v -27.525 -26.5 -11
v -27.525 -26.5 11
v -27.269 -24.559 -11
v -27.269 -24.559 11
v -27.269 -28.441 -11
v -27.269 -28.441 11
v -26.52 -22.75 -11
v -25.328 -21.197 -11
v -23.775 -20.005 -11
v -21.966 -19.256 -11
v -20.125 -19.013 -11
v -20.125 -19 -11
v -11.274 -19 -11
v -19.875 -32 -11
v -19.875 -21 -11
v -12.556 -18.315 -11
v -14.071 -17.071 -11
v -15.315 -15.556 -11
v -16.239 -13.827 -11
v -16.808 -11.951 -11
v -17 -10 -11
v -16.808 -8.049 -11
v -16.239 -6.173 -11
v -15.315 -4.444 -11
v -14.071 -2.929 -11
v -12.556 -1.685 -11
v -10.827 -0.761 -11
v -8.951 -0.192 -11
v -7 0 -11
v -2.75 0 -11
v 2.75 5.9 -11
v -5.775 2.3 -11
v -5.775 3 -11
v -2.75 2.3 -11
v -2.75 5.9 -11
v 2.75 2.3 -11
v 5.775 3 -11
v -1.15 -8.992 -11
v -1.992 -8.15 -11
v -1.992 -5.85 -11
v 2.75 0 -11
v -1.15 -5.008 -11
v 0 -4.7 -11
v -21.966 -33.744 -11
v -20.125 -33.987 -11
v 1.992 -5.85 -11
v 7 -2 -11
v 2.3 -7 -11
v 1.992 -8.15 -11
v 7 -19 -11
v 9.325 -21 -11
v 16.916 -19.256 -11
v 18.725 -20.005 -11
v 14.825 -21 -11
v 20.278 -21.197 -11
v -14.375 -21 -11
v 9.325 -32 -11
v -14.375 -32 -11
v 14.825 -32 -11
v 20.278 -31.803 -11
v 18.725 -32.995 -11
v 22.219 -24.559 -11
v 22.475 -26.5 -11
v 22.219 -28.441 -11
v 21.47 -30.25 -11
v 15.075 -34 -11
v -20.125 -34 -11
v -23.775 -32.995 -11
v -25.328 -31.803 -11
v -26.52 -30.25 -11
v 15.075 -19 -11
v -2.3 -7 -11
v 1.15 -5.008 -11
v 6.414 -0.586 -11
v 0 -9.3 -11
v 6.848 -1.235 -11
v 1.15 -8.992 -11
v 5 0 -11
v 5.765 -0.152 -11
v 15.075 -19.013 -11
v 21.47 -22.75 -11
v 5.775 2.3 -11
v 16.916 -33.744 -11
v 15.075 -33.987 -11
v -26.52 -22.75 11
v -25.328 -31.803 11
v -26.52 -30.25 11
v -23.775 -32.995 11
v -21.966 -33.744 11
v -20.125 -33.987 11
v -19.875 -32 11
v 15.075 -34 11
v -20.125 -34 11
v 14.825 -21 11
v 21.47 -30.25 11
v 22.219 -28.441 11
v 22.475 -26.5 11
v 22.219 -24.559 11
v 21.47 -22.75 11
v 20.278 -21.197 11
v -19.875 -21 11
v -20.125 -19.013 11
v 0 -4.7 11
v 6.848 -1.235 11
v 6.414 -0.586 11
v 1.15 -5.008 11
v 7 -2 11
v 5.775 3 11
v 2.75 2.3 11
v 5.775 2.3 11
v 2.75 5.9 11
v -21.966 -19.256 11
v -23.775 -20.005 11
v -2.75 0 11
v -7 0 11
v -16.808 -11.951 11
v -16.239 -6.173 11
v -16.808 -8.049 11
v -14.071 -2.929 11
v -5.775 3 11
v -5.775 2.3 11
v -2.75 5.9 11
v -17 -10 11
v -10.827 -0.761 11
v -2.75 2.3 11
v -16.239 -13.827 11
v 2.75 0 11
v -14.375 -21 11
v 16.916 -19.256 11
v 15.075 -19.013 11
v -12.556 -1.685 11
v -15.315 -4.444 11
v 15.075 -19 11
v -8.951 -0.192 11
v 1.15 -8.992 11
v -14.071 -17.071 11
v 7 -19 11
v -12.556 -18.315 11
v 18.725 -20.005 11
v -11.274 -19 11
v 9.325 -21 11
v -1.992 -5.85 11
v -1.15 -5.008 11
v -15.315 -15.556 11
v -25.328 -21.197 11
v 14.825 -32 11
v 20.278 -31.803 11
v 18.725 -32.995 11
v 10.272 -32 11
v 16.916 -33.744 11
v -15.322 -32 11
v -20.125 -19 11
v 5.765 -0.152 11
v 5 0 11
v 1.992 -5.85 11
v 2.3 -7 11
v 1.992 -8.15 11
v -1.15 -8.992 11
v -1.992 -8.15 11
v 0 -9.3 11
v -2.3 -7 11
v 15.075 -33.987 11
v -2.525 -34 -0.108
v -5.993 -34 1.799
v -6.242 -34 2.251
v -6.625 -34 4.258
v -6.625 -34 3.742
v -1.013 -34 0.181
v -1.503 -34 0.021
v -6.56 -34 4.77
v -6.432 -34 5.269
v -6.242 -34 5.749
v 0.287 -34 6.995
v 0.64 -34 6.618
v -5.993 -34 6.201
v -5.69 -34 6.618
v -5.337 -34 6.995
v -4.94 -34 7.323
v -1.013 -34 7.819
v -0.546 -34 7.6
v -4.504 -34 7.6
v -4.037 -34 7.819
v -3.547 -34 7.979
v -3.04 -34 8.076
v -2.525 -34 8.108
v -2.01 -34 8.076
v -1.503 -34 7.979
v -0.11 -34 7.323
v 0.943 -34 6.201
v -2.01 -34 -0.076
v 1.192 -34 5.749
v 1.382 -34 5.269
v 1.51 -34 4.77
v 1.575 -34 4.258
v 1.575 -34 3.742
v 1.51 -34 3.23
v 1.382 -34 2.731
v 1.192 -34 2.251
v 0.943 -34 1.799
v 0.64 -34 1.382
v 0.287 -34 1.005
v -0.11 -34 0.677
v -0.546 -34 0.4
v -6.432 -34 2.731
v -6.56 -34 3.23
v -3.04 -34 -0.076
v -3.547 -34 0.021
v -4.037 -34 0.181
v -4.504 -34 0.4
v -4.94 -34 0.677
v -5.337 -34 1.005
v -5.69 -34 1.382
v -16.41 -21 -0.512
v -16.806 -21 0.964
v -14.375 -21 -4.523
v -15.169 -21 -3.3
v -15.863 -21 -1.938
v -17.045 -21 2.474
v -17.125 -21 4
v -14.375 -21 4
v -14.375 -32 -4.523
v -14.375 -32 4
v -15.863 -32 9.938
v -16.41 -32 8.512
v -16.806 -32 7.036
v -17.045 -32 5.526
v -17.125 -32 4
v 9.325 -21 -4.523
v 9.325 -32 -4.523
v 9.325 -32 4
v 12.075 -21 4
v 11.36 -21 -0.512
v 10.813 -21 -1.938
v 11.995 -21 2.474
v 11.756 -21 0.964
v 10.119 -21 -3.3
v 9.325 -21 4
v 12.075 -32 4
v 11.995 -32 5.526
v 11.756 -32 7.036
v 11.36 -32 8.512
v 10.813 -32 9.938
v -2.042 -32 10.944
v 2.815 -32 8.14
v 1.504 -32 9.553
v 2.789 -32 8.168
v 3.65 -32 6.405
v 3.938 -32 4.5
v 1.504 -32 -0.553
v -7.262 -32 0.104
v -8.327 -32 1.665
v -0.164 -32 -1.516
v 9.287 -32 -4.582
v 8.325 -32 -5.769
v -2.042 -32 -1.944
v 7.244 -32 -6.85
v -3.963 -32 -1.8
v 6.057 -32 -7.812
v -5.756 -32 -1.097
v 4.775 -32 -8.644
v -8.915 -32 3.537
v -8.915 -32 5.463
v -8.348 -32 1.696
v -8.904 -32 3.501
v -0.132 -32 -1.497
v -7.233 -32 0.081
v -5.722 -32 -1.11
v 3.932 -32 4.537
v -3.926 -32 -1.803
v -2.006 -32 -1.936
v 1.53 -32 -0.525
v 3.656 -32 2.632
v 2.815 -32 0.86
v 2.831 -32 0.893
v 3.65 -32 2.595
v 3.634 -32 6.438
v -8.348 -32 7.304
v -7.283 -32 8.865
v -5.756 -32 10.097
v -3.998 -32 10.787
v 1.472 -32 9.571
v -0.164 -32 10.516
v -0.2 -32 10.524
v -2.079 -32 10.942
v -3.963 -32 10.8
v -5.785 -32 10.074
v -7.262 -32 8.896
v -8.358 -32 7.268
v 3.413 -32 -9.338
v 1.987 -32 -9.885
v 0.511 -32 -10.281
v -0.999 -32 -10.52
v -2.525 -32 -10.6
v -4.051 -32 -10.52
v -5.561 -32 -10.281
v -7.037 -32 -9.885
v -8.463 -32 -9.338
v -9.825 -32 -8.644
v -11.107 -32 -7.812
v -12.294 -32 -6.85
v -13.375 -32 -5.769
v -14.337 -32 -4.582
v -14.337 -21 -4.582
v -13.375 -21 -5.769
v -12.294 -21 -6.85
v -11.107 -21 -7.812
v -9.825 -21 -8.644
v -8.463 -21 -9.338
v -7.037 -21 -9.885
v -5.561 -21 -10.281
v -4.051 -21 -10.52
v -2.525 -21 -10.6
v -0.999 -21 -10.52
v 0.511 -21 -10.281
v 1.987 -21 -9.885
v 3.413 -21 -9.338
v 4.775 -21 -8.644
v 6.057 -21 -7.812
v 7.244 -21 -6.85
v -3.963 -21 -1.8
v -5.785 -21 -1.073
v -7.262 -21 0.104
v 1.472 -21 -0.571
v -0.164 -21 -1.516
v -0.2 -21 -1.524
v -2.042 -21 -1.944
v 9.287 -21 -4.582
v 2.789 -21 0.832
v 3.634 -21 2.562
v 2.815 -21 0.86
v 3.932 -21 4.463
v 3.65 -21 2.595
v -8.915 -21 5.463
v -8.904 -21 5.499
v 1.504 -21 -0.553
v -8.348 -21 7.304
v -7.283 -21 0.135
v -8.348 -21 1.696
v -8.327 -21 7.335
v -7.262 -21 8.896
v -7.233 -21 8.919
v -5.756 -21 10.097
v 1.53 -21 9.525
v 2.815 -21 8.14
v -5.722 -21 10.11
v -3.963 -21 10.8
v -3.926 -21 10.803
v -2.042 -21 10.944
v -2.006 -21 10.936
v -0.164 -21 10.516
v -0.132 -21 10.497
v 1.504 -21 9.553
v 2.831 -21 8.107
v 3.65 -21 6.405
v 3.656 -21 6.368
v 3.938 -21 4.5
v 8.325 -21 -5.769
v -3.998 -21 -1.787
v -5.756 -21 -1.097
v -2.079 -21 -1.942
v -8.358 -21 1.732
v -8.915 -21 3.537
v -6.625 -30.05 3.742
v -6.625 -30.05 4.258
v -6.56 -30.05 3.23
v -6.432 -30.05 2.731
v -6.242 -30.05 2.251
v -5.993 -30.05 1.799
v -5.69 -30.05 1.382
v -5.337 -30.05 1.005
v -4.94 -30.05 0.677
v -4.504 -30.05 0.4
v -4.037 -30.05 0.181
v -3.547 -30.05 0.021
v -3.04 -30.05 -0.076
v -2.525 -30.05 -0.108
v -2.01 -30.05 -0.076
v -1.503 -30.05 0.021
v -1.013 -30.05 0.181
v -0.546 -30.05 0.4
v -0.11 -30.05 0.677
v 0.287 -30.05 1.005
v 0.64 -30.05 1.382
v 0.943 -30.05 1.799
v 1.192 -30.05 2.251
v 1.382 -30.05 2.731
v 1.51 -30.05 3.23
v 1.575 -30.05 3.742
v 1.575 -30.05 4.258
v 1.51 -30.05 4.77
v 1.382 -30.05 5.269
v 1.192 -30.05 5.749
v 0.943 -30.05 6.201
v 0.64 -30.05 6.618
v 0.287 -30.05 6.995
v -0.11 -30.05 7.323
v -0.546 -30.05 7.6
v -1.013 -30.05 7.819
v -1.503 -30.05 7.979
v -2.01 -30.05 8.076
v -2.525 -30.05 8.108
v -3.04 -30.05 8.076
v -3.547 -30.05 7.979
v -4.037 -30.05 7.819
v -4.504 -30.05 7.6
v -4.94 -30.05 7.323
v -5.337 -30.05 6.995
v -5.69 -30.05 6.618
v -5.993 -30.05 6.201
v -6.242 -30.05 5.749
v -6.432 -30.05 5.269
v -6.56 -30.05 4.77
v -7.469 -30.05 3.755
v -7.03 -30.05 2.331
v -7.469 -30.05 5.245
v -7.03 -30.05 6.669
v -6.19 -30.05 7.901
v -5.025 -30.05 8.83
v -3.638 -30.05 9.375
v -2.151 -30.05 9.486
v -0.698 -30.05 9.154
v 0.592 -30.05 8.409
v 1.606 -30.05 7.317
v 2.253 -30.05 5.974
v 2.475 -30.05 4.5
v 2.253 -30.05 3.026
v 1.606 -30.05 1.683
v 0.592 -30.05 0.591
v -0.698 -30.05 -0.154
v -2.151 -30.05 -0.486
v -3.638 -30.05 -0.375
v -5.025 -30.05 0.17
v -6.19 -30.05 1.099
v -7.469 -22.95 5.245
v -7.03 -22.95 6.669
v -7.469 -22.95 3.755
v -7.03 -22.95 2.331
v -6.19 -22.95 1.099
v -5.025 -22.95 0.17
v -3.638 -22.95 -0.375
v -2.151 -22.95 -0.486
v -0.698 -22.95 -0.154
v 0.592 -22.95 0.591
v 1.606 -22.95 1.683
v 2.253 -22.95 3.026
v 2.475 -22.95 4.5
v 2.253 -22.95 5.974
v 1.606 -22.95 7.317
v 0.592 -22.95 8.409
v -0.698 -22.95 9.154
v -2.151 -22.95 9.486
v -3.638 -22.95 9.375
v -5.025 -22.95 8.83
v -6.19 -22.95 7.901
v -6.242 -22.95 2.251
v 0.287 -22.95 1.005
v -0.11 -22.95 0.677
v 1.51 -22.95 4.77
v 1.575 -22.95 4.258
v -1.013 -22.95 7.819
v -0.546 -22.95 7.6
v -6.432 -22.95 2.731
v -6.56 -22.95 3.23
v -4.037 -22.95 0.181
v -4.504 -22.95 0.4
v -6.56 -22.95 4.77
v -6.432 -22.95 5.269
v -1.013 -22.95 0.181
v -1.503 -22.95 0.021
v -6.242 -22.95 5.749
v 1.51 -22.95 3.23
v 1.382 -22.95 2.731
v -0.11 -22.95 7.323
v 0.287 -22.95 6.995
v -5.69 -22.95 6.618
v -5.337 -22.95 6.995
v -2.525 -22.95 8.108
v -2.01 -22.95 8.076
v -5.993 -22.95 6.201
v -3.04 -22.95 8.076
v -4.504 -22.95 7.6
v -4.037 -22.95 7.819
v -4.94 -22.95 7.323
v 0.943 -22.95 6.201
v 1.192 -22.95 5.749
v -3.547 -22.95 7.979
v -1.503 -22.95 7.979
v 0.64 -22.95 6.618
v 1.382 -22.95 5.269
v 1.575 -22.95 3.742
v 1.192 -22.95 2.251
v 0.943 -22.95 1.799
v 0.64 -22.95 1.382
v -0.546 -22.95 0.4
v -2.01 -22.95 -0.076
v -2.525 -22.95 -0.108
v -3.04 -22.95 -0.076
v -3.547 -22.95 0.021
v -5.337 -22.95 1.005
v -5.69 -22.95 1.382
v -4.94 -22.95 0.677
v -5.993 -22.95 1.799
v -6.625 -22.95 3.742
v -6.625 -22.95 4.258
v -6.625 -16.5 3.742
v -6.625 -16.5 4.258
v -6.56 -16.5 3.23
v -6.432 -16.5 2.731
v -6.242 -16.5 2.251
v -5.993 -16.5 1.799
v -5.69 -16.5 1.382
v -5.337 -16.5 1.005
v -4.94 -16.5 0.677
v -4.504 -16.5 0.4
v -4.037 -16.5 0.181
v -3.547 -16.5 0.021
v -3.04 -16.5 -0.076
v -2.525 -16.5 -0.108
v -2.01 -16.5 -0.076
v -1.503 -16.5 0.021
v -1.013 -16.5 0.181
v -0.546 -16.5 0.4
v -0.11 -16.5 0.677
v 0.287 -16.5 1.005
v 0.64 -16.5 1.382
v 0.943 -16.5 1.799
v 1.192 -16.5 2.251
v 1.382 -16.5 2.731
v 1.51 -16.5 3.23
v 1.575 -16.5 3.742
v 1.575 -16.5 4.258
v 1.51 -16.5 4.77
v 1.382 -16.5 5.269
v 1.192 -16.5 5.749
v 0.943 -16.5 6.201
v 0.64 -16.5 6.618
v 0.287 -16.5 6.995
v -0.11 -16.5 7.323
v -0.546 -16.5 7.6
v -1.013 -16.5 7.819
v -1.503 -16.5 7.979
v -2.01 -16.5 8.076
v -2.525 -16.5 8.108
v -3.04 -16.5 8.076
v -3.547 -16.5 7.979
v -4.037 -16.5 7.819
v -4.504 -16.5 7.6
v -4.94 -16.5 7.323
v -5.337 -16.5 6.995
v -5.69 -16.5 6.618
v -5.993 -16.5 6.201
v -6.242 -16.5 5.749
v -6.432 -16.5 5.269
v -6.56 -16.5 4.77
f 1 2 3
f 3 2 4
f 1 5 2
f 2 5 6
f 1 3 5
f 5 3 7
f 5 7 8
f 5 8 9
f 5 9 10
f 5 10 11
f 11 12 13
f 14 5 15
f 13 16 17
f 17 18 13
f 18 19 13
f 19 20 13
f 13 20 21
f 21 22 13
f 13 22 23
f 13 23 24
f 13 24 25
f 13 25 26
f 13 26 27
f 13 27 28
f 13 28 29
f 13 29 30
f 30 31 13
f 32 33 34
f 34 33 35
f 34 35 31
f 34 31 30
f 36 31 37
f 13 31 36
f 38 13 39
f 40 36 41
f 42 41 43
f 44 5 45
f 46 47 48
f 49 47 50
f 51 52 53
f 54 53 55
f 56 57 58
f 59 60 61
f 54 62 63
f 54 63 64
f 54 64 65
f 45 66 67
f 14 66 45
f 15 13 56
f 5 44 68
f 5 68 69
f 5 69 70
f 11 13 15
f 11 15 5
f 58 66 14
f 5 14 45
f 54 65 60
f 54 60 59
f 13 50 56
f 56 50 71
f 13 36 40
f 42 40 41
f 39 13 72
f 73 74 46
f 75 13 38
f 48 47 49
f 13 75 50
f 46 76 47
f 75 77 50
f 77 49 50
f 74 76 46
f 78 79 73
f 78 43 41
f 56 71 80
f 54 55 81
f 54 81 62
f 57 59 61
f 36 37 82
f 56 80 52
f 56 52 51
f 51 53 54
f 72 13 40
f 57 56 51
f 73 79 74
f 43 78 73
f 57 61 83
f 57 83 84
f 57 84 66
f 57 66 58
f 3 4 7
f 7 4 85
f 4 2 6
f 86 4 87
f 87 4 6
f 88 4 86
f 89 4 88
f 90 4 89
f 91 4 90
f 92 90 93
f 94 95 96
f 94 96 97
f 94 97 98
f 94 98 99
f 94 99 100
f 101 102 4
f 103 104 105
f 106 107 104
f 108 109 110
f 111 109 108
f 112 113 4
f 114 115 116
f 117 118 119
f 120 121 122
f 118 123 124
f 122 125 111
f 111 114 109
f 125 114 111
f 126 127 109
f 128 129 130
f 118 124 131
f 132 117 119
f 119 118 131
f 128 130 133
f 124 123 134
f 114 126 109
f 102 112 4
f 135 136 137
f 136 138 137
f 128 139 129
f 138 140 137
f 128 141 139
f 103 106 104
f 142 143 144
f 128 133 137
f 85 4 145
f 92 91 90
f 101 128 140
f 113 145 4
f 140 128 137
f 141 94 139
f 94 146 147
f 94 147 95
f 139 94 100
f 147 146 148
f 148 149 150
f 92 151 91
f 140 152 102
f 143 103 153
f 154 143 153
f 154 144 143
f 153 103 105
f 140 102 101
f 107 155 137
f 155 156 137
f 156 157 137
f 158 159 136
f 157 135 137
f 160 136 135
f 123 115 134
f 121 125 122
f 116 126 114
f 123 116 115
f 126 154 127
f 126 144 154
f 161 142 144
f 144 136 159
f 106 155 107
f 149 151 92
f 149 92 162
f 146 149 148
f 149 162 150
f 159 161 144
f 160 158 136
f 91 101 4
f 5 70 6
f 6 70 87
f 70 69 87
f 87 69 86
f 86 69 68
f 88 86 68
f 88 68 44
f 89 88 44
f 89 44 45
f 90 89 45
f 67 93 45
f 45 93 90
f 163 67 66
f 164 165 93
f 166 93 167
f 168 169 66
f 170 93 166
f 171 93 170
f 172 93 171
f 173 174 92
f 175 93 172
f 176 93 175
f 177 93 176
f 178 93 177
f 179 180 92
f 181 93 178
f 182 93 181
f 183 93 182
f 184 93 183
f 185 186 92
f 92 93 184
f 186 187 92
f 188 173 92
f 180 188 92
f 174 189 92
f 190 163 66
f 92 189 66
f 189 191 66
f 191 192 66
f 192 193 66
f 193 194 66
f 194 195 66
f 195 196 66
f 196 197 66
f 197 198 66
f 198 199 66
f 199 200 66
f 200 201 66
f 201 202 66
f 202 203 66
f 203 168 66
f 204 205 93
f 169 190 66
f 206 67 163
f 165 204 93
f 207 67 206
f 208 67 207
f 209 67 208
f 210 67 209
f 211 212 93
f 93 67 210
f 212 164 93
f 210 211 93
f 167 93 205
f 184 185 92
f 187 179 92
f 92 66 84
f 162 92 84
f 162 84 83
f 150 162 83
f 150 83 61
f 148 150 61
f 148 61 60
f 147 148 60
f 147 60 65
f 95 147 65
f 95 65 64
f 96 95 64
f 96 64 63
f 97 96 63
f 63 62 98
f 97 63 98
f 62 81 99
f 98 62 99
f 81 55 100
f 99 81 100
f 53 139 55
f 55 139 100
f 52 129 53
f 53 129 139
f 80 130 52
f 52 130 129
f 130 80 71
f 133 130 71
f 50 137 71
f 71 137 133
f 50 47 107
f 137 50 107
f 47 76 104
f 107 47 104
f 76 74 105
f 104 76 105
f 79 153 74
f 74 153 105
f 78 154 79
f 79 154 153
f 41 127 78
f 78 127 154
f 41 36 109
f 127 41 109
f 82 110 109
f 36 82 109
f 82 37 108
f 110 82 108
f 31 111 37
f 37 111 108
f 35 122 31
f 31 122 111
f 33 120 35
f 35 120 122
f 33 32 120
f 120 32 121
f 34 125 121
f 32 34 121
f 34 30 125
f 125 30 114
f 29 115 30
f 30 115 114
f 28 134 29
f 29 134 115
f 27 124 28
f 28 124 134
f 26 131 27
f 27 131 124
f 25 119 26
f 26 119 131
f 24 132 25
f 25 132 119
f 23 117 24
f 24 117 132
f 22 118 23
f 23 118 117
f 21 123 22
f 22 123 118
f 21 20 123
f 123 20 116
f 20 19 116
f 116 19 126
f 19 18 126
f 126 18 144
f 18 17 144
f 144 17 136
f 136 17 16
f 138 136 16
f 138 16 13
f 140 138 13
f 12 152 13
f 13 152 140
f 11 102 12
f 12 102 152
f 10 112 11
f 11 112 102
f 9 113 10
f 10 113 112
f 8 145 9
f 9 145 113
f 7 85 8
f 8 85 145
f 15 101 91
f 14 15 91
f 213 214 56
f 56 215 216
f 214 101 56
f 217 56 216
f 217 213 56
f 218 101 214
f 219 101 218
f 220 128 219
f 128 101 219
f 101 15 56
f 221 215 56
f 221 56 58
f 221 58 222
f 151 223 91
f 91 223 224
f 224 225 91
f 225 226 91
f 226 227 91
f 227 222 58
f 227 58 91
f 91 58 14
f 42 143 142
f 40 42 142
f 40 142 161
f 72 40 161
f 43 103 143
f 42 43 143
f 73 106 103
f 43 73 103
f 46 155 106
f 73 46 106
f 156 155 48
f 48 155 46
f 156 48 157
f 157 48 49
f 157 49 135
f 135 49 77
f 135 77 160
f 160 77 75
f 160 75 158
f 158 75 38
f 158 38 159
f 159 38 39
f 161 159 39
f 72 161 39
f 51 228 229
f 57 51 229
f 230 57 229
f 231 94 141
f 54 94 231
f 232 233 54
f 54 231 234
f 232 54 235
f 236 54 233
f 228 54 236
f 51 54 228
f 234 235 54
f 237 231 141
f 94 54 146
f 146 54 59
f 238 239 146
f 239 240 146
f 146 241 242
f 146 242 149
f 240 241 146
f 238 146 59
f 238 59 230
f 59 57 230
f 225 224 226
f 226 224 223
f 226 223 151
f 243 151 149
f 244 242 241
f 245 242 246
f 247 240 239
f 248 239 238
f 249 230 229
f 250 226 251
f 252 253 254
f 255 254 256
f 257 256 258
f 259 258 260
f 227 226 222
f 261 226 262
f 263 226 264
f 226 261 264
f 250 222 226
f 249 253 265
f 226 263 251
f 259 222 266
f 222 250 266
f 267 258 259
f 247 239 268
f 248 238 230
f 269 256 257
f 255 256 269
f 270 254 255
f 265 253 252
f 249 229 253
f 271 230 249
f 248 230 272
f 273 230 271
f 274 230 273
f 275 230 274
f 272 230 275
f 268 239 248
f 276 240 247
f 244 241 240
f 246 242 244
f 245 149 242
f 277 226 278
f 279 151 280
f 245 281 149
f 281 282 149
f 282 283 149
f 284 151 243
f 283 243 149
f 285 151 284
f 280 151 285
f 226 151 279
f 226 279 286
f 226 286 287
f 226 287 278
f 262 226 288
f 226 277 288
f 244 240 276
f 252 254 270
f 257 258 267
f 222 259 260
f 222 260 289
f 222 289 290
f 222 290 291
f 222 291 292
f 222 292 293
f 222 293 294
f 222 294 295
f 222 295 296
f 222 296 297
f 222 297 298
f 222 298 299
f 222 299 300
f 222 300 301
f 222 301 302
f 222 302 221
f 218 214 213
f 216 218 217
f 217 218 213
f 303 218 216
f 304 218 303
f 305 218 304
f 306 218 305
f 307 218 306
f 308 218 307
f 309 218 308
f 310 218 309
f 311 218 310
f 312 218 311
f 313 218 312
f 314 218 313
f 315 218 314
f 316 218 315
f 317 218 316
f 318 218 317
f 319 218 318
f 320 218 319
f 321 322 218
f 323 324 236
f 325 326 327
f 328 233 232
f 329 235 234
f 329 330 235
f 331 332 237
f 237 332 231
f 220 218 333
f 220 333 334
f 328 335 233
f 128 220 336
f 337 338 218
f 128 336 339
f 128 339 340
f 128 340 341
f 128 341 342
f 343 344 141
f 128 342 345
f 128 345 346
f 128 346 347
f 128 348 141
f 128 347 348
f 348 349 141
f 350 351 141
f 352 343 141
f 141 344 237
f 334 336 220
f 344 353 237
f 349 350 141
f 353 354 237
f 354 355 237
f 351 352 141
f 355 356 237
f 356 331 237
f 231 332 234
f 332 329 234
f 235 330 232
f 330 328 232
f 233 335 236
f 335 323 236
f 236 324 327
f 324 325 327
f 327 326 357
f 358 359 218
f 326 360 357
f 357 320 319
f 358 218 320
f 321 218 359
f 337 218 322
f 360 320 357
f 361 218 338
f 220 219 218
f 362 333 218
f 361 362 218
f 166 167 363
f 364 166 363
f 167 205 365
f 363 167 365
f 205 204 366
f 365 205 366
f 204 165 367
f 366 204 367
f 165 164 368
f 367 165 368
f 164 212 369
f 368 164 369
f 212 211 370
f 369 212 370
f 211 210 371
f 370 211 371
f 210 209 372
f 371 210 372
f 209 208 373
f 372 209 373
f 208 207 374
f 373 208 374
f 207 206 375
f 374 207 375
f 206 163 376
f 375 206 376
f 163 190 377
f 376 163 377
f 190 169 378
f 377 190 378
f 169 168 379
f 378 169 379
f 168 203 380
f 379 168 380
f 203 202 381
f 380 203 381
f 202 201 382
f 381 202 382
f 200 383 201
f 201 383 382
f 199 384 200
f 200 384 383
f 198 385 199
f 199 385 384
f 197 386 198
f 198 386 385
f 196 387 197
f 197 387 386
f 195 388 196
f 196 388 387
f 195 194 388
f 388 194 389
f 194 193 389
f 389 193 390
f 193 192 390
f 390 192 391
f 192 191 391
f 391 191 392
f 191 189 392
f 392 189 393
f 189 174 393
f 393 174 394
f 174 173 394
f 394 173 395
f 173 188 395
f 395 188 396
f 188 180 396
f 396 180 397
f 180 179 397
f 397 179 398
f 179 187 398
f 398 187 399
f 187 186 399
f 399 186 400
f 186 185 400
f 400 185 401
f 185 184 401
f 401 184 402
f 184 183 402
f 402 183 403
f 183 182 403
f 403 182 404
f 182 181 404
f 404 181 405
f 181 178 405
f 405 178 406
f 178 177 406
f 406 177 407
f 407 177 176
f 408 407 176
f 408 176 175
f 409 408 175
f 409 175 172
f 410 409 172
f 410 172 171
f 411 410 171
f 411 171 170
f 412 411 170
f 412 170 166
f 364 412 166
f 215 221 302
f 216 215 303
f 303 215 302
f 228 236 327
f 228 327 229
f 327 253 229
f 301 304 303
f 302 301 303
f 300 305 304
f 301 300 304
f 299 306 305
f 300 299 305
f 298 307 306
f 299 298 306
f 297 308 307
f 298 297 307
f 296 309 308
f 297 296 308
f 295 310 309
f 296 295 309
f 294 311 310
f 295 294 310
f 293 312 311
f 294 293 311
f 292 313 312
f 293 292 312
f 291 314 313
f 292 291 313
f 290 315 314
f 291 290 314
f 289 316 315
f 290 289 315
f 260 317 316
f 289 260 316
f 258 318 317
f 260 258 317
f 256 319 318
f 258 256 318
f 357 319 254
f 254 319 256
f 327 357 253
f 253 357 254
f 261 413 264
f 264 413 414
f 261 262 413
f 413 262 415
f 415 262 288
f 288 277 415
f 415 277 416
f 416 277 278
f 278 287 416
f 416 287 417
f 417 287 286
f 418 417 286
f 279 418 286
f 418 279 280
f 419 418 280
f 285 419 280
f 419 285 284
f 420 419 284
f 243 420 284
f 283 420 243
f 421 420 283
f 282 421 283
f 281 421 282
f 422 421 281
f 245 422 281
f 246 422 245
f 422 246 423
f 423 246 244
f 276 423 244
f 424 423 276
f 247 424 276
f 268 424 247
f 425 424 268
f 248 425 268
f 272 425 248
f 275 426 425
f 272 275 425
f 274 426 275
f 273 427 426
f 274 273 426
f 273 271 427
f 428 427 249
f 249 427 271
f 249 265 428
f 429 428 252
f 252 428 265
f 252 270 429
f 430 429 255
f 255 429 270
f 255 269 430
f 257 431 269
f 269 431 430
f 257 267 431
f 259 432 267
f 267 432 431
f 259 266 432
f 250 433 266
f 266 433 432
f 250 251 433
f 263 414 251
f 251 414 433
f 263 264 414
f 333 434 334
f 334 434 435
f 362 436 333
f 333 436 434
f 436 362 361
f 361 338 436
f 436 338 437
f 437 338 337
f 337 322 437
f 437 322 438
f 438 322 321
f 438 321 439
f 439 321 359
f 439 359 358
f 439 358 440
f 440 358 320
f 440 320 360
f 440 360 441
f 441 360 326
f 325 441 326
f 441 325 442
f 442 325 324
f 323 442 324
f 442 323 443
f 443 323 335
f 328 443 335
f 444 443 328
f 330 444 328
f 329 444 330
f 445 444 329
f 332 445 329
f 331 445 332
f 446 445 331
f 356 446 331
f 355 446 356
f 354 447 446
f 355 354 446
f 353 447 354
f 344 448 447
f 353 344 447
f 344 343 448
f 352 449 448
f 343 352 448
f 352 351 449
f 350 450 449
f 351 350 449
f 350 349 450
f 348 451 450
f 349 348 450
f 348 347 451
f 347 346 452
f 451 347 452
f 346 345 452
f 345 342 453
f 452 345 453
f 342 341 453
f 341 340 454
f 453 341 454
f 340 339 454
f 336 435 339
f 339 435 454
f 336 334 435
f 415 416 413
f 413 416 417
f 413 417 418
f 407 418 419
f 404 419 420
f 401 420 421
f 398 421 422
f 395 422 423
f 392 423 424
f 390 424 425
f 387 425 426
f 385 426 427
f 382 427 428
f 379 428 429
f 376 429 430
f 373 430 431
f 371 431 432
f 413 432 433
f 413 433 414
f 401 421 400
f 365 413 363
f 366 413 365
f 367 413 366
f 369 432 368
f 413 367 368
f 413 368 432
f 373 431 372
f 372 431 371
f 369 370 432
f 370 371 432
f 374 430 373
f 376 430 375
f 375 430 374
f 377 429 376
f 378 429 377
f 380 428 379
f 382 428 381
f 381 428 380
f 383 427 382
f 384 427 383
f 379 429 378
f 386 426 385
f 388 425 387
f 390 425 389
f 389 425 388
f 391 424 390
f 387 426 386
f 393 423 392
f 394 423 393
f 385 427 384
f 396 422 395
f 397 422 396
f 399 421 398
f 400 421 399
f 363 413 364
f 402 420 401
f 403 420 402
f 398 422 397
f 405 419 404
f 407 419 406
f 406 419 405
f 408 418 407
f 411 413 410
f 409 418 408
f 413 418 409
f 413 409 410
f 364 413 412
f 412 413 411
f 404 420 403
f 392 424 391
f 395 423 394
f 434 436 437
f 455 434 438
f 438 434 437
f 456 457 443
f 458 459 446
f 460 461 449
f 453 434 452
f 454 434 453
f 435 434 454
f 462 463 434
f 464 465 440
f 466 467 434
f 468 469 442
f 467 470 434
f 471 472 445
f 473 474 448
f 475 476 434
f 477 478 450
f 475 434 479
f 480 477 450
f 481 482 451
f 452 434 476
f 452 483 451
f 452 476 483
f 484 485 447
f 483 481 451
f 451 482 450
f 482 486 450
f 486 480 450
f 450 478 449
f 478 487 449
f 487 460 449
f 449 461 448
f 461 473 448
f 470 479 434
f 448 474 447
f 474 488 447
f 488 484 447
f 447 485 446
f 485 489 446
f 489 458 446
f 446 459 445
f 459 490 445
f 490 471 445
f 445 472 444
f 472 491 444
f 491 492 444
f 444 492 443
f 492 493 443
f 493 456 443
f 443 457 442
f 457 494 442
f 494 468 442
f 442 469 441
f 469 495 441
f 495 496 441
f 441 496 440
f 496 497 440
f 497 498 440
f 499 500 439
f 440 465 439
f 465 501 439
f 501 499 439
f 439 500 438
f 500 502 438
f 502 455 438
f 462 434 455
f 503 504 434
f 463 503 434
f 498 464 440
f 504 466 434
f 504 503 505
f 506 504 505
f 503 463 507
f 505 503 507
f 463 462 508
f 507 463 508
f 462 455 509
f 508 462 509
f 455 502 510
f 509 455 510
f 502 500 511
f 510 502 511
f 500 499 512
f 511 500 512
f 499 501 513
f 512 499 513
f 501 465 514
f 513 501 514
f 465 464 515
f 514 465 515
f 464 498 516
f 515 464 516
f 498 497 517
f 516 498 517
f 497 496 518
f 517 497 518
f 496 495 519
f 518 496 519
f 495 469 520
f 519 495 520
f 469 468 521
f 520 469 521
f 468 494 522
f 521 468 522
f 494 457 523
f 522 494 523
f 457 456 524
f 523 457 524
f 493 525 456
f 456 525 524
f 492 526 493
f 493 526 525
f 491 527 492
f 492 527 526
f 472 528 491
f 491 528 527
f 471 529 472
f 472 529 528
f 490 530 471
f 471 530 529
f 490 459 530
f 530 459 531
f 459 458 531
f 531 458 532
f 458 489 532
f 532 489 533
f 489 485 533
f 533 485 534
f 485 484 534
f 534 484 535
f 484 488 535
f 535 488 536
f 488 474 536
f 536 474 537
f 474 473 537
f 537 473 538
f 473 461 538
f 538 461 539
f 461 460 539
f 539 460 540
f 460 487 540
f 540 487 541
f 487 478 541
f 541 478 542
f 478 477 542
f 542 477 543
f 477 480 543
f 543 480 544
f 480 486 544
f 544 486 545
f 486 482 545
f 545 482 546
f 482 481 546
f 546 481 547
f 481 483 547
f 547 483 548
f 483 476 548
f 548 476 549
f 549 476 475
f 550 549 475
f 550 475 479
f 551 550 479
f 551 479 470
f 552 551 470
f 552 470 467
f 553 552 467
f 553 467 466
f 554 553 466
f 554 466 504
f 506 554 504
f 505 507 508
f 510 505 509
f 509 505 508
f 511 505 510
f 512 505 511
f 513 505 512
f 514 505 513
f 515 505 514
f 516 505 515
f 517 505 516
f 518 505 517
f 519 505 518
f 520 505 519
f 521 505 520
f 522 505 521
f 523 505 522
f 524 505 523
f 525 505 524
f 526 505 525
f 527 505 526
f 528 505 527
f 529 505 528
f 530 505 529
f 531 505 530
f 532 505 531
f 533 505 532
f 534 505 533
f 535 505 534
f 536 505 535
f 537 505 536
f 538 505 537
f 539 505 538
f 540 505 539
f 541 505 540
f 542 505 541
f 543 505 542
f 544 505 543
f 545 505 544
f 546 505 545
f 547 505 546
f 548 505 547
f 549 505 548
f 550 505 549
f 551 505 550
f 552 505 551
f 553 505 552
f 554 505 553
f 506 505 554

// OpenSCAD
// file: misumi-parts-library.scad
module hfs2040(l) {
	// hfs5_2040
	color("silver") {
		rotate([-90,0,0]) translate([0,0,l]) scale([1,1,l/500]) import("misumi/hfs5_2040_500.stl");
	}
}

module hfs60() {
	translate([0,0,100]) import("misumi/hfs60a5_20_100.stl");
}

module hblss5() {
	import("misumi/hblss5.stl");
}
module hblfsnf5() {
	import("misumi/hblfsnf5.stl");
}
module hblfsn5() {
	import("misumi/hblfsn5.stl");
}
module hblsd5() {
	color("blue") import("misumi/hblsd5.stl");
}

module hblfsd5() {
	color("blue") import("misumi/hblfsd5.stl");
}

module hblts5() {
	color("blue") import("misumi/hblts5.stl");
}

module hblfssw5() {
	color("blue") import("misumi/hblfssw5.stl");
}

module flatbracket2x2() {
	// HPTSd5
	difference() {
		color("blue") cube([36, 36, 2.3], center=true);
		#translate([10, 10, -2]) cylinder(r= 5.5/2, h= 4);
		#translate([-10, 10, -2]) cylinder(r= 5.5/2, h= 4);
		#translate([10, -10, -2]) cylinder(r= 5.5/2, h= 4);
		#translate([-10, -10, -2]) cylinder(r= 5.5/2, h= 4);
	}
}

module tbracket() {
	// HPTTD5
	translate([-110/2, 0,0]) difference() {
		 union() {
			color("blue"){ 
				cube([110, 38, 2.3]);
				translate([110/2-38/2,-38,0]) cube([38, 80-38, 2.3]);
			}
		}
		#translate([9, 9, 0]) cylinder(r= 5.5/2, h= 4);
		#translate([9, 9+20, 0]) cylinder(r= 5.5/2, h= 4);
		#translate([110-9, 9, 0]) cylinder(r= 5.5/2, h= 4);
		#translate([110-9, 9+20, 0]) cylinder(r= 5.5/2, h= 4);
		translate([110/2-38/2,-38,0]) {
			#translate([9, 9, 0]) cylinder(r= 5.5/2, h= 4);
			#translate([9, 9+20, 0]) cylinder(r= 5.5/2, h= 4);
			#translate([38-9, 9, 0]) cylinder(r= 5.5/2, h= 4);
			#translate([38-9, 9+20, 0]) cylinder(r= 5.5/2, h= 4);
		}
	}
}

module tbracket1() {
	// HPTTS5
	//thick= 2.3; // real
	thick= 4; // printable
	translate([-100/2, 0,0]) difference() {
		 union() {
			color("blue"){ 
				cube([100, 18, thick]);
				translate([100/2-18/2,18,0]) cube([18, 90-18, thick]);
			}
		}
		#translate([10, 9, -2]) cylinder(r= 5.5/2, h= thick+4);
		#translate([100-10, 9, -2]) cylinder(r= 5.5/2, h= thick+4);
		#translate([50, 9, -2]) cylinder(r= 5.5/2, h= thick+4);
		translate([100/2-18/2,18,0]) {
			#translate([9, 90-18-10, -2]) cylinder(r= 5.5/2, h= thick+4);
			#translate([9, 90-18-10-30, -2]) cylinder(r= 5.5/2, h= thick+4);
		}
	}
}
// file: myLibs.scad
pi= 3.14159265359;

module hole(diam, height, clearance= 0.1)
{
        fn= round(diam * pi / 0.5);
        cylinder(h= height, r=diam / 2 / cos(180 / fn) + clearance, $fn=fn);
}

module nutTrap(ffd, faces=6, height=1)
{
	cylinder(h= height, r=ffd / cos(180 / faces) / 2 + 0.05, $fn=faces);
}

// A slot which has rounded ends, but total length is l
module slot(d= 4, l= 8, ht= 1, clearance=0.1) {
	fn= round(d * pi / 0.5);
	rd= d / 2 / cos(180 / fn) + clearance;
	d1= rd*2;
	union() {
		translate([0,0,ht/2]) cube([l-d1, d1, ht], center=true);
		translate([-(l-d1)/2, 0, ht/2]) cylinder(h=ht, r=rd, $fn=fn, center=true);
		translate([(l-d1)/2, 0, ht/2]) cylinder(h=ht, r=rd, $fn=fn, center=true);
	}
}

module nslot(d=4, l= 8, ht=1, clearance=0.1) {
	x= l-(d+clearance);
	hull() {
		translate([x/2, 0, 0])  hole(d, ht, clearance);
		translate([-x/2,0,0]) hole(d,ht, clearance);
	}
}

module rounded_base(w, l, r, h) {
	v1= [w/2-r, l/2-r, 0];
	v2= [-w/2+r, -l/2+r, 0];
	v3= [-w/2+r, l/2-r, 0];
	v4= [w/2-r, -l/2+r, 0];
	hull() {
		translate(v1) cylinder(r= r, h=h);
		translate(v2) cylinder(r= r, h=h);
		translate(v3) cylinder(r= r, h=h);
		translate(v4) cylinder(r= r, h=h);
	}
}
// file: crownedpulley.scad
// Crowned Pulley
// John Rood, 2012-11-18
// inspired by http://www.thingiverse.com/thing:14117 by DaleDunn

$fn = 100;

// 608
crownRadius = 13.6;
pulleyHeight = 9;
bearingSize = 22;
bearingClearing = 0.1; // 22.6mm inside diameter
innerHole = 9.15;

// 605
// pulleyHeight = 5+2;
// bearingSize = 14;
// bearingClearing = 0.1;
// innerHole = bearingSize/2-1.5;
// crownRadius = bearingSize/2+2;

function pulley_width() = pulleyHeight;
function pulley_diameter() = crownRadius*2;

echo(str("pulley_diameter=", crownRadius*2));
module crowned_pulley() {
	difference() {
	    intersection() {
	        cylinder(r = crownRadius, h = pulleyHeight);
	        translate([0, 0, pulleyHeight / 2]) scale([1, 1, .7]) sphere(r=crownRadius);
	    }
	    translate([0, 0, 1])
	        cylinder(r = (bearingSize + bearingClearing) / 2, h = pulleyHeight);
	    translate([0, 0, -1])
	        cylinder(r = innerHole, h = pulleyHeight + 2);
	}
}

crowned_pulley();

// intersection() {
// 	#cylinder(r = crownRadius, h = pulleyHeight);
// 	#translate([0, 0, pulleyHeight / 2]) scale([1, 1, .7])  sphere(r=crownRadius);
// }
// file: 2020-insert.scad
use <misumi-parts-library.scad>

slotneckw= 6-0.5;
slotthick= 2+0.3;
slotdepth= 3.2+0.6-0.2;
slotwidth= 9.95+1.6;
shoulder=0.7;
edge= (slotwidth-slotneckw)/2;
diagl=3.6;

p1= [0,0];
p2= [slotwidth,0];
p3= [slotwidth,-shoulder];
p4= [slotwidth-edge,-slotdepth];
p5= [edge,-slotdepth];
p6= [0,-shoulder];
p7= [0,0];

module slider_body(width, height, thick) {
	union() {
		translate([-width/2,slotthick,0]) cube([width,thick,height]);
		translate([-slotneckw/2,0,0]) cube([slotneckw, slotthick, height]);
		translate([-slotwidth/2,0,0]) linear_extrude(height=height)
			polygon(points=[ p1,p2,p3,p4,p5,p6,p7 ]);
	}
}

module slider2020(w= 20, h= 20, t=2) {
	translate([0,-slotthick,0]) slider_body(w, h, t);
}

slider2020(w=10, h=10, t=2);
% translate([10, -10.1, 0])  rotate([90, 0, 90])   hfs2040(50);
// main file
use <2020-insert.scad>
use <crownedpulley.scad>
use <myLibs.scad>


/* TODO
 * put cones on each side of bearing
 * allow tilting of bearing shaft to center belt
 *   a. wedge
 *   b. nut underneath
 *   c. cone shft push in for tild one way pull out for. tilt otherway
 */

gt2_inner_dia= 12.25;
offset_x = -19; 
offset_y = 10-pulley_diameter()/2+gt2_inner_dia/2;
rotate_z = -90;
clearance= 2;
offset_z= 4;
block_width= abs(offset_x)+1;
block_length= 14;

belt_thick= 2; // 1.45
belt_width= 6;
belt_clearance= 2;
thick= 3*2;
bearingID= 8;

function tensioner_height()= 22;

//block();
//tensioner_body();
//support();

tensioner_608();

// generate a negative fillet for an edge
module fillet(pos= [0,0,0], radius=3, height=100, fn=16, angle= 0) {                                     
   translate(pos) rotate([0,0,angle]) translate([-radius, -radius, -height/2-0.01])
        difference() {
            cube([radius*2, radius*2, height+0.02]);
            cylinder(r=radius, h=height+0.02, $fn=fn);
        }
}

module tensioner_support() {
	difference() {
		translate([0, 3.5, offset_z]) rotate([90, 0, 0]) cylinder(r=11, h=7, center=false);
		#translate([0, 5, offset_z]) rotate([90, 0, 0]) cylinder(r=8/2, h=10, center=false);
	}
	translate([0, pulley_width()/2, offset_z]) rotate([90, 0, 0]) crowned_pulley();
}

module block() {
		rotate([0, 0, rotate_z]) translate([offset_x-(pulley_width()+thick)/2, offset_y, 0]) {
			difference() {
				union() {
					translate([block_width/2, 0, 0]) cube([block_width, block_length, tensioner_height()], center=true);
					translate([block_width/2, -block_length/2, 0]) cylinder(r=block_width/2, h=tensioner_height(), center=true, $fn=32);
					// t slot
					translate([0,0,-tensioner_height()/2]) rotate([0,0,-90]) slider2020(h=tensioner_height(), w=14, t=2);

				}
				fillet(pos=[0,block_length/2,0], radius=2, angle=90);
				// 1/4" hole for tensioner
				#translate([7,0,10]) cylinder(r=(4)/2+0.3, h=50, center=true, $fn=12);
		}
	}
}

module end() {
	intersection() {
		cylinder(r=(pulley_width()+thick)/2, h=tensioner_height(), center=true);
		translate([0, -(pulley_width()+thick)/2, 0]) cube(size=[pulley_width()+thick, pulley_width()+thick, tensioner_height()], center=true);
	}
}

module tensioner_body() {
	difference() {
		union() {
			cube([pulley_width()+thick, pulley_diameter()+belt_thick+thick, tensioner_height()], center=true);
			translate([0, -(pulley_diameter()+belt_thick+thick)/2+0.1, 0]) end();
			translate([0, (pulley_diameter()+belt_thick+thick)/2-0.1, 0]) rotate([0, 0, 180])  end();
		}

		translate([0, 0, offset_z]) {
			// bearing
			rotate([0, 90, 0]) cylinder(r=(pulley_diameter()+clearance)/2, h=pulley_width()+clearance, center=true, $fn=60);
			// shaft
			//#translate([-14/2,0,0]) rotate([0, 90, 0]) hole(8, 14);
		}
		// belts
		translate([0, pulley_diameter()/2+belt_thick-1, 0]) cube(size=[pulley_width()+clearance, belt_thick+belt_clearance+1.5, 40], center=true);
		translate([0, -pulley_diameter()/2-belt_thick+1, 0]) cube(size=[pulley_width()+clearance, belt_thick+belt_clearance+1.5, 40], center=true);
	}
}

module tensioner_608() {
	translate([-offset_y,offset_x-(pulley_width()+thick)/2,0]) difference() {
		union() {
			block();
			translate([0, 0, 0]) rotate([0, 0, 90])  tensioner_body();
			translate([0,(pulley_width()+clearance)/2+0.05,offset_z+0.5]) horn(true);
			translate([0,-(pulley_width()+clearance)/2-0.05,offset_z+0.5]) horn(false);
		}
		// bearing shaft
		//translate([0,block_width/2,offset_z+0.5]) rotate([90, 90, 0]) slot(8, 9, 18);
		translate([0,block_width/2,offset_z]) rotate([90, 90, 0]) hole(8, 18);
		//translate([0, -12, 0])  cube([50, 20, 50], center=true); // cutaway to see clearance
	}

	%translate([-offset_y,offset_x-(pulley_width()+thick)/2,0]) tensioner_support();

	// belts
	%translate([-offset_y-pulley_diameter()/2-belt_thick, offset_x-(pulley_width()+thick)/2-belt_width/2, -25]) color("gray") cube([belt_thick, belt_width, 50]);
}

module horn(front=true) {
	rotate([front?90:-90, 0, 0])  cylinder(r1= bearingID/2+2.5, r2=bearingID/2+1, h=2);
}
